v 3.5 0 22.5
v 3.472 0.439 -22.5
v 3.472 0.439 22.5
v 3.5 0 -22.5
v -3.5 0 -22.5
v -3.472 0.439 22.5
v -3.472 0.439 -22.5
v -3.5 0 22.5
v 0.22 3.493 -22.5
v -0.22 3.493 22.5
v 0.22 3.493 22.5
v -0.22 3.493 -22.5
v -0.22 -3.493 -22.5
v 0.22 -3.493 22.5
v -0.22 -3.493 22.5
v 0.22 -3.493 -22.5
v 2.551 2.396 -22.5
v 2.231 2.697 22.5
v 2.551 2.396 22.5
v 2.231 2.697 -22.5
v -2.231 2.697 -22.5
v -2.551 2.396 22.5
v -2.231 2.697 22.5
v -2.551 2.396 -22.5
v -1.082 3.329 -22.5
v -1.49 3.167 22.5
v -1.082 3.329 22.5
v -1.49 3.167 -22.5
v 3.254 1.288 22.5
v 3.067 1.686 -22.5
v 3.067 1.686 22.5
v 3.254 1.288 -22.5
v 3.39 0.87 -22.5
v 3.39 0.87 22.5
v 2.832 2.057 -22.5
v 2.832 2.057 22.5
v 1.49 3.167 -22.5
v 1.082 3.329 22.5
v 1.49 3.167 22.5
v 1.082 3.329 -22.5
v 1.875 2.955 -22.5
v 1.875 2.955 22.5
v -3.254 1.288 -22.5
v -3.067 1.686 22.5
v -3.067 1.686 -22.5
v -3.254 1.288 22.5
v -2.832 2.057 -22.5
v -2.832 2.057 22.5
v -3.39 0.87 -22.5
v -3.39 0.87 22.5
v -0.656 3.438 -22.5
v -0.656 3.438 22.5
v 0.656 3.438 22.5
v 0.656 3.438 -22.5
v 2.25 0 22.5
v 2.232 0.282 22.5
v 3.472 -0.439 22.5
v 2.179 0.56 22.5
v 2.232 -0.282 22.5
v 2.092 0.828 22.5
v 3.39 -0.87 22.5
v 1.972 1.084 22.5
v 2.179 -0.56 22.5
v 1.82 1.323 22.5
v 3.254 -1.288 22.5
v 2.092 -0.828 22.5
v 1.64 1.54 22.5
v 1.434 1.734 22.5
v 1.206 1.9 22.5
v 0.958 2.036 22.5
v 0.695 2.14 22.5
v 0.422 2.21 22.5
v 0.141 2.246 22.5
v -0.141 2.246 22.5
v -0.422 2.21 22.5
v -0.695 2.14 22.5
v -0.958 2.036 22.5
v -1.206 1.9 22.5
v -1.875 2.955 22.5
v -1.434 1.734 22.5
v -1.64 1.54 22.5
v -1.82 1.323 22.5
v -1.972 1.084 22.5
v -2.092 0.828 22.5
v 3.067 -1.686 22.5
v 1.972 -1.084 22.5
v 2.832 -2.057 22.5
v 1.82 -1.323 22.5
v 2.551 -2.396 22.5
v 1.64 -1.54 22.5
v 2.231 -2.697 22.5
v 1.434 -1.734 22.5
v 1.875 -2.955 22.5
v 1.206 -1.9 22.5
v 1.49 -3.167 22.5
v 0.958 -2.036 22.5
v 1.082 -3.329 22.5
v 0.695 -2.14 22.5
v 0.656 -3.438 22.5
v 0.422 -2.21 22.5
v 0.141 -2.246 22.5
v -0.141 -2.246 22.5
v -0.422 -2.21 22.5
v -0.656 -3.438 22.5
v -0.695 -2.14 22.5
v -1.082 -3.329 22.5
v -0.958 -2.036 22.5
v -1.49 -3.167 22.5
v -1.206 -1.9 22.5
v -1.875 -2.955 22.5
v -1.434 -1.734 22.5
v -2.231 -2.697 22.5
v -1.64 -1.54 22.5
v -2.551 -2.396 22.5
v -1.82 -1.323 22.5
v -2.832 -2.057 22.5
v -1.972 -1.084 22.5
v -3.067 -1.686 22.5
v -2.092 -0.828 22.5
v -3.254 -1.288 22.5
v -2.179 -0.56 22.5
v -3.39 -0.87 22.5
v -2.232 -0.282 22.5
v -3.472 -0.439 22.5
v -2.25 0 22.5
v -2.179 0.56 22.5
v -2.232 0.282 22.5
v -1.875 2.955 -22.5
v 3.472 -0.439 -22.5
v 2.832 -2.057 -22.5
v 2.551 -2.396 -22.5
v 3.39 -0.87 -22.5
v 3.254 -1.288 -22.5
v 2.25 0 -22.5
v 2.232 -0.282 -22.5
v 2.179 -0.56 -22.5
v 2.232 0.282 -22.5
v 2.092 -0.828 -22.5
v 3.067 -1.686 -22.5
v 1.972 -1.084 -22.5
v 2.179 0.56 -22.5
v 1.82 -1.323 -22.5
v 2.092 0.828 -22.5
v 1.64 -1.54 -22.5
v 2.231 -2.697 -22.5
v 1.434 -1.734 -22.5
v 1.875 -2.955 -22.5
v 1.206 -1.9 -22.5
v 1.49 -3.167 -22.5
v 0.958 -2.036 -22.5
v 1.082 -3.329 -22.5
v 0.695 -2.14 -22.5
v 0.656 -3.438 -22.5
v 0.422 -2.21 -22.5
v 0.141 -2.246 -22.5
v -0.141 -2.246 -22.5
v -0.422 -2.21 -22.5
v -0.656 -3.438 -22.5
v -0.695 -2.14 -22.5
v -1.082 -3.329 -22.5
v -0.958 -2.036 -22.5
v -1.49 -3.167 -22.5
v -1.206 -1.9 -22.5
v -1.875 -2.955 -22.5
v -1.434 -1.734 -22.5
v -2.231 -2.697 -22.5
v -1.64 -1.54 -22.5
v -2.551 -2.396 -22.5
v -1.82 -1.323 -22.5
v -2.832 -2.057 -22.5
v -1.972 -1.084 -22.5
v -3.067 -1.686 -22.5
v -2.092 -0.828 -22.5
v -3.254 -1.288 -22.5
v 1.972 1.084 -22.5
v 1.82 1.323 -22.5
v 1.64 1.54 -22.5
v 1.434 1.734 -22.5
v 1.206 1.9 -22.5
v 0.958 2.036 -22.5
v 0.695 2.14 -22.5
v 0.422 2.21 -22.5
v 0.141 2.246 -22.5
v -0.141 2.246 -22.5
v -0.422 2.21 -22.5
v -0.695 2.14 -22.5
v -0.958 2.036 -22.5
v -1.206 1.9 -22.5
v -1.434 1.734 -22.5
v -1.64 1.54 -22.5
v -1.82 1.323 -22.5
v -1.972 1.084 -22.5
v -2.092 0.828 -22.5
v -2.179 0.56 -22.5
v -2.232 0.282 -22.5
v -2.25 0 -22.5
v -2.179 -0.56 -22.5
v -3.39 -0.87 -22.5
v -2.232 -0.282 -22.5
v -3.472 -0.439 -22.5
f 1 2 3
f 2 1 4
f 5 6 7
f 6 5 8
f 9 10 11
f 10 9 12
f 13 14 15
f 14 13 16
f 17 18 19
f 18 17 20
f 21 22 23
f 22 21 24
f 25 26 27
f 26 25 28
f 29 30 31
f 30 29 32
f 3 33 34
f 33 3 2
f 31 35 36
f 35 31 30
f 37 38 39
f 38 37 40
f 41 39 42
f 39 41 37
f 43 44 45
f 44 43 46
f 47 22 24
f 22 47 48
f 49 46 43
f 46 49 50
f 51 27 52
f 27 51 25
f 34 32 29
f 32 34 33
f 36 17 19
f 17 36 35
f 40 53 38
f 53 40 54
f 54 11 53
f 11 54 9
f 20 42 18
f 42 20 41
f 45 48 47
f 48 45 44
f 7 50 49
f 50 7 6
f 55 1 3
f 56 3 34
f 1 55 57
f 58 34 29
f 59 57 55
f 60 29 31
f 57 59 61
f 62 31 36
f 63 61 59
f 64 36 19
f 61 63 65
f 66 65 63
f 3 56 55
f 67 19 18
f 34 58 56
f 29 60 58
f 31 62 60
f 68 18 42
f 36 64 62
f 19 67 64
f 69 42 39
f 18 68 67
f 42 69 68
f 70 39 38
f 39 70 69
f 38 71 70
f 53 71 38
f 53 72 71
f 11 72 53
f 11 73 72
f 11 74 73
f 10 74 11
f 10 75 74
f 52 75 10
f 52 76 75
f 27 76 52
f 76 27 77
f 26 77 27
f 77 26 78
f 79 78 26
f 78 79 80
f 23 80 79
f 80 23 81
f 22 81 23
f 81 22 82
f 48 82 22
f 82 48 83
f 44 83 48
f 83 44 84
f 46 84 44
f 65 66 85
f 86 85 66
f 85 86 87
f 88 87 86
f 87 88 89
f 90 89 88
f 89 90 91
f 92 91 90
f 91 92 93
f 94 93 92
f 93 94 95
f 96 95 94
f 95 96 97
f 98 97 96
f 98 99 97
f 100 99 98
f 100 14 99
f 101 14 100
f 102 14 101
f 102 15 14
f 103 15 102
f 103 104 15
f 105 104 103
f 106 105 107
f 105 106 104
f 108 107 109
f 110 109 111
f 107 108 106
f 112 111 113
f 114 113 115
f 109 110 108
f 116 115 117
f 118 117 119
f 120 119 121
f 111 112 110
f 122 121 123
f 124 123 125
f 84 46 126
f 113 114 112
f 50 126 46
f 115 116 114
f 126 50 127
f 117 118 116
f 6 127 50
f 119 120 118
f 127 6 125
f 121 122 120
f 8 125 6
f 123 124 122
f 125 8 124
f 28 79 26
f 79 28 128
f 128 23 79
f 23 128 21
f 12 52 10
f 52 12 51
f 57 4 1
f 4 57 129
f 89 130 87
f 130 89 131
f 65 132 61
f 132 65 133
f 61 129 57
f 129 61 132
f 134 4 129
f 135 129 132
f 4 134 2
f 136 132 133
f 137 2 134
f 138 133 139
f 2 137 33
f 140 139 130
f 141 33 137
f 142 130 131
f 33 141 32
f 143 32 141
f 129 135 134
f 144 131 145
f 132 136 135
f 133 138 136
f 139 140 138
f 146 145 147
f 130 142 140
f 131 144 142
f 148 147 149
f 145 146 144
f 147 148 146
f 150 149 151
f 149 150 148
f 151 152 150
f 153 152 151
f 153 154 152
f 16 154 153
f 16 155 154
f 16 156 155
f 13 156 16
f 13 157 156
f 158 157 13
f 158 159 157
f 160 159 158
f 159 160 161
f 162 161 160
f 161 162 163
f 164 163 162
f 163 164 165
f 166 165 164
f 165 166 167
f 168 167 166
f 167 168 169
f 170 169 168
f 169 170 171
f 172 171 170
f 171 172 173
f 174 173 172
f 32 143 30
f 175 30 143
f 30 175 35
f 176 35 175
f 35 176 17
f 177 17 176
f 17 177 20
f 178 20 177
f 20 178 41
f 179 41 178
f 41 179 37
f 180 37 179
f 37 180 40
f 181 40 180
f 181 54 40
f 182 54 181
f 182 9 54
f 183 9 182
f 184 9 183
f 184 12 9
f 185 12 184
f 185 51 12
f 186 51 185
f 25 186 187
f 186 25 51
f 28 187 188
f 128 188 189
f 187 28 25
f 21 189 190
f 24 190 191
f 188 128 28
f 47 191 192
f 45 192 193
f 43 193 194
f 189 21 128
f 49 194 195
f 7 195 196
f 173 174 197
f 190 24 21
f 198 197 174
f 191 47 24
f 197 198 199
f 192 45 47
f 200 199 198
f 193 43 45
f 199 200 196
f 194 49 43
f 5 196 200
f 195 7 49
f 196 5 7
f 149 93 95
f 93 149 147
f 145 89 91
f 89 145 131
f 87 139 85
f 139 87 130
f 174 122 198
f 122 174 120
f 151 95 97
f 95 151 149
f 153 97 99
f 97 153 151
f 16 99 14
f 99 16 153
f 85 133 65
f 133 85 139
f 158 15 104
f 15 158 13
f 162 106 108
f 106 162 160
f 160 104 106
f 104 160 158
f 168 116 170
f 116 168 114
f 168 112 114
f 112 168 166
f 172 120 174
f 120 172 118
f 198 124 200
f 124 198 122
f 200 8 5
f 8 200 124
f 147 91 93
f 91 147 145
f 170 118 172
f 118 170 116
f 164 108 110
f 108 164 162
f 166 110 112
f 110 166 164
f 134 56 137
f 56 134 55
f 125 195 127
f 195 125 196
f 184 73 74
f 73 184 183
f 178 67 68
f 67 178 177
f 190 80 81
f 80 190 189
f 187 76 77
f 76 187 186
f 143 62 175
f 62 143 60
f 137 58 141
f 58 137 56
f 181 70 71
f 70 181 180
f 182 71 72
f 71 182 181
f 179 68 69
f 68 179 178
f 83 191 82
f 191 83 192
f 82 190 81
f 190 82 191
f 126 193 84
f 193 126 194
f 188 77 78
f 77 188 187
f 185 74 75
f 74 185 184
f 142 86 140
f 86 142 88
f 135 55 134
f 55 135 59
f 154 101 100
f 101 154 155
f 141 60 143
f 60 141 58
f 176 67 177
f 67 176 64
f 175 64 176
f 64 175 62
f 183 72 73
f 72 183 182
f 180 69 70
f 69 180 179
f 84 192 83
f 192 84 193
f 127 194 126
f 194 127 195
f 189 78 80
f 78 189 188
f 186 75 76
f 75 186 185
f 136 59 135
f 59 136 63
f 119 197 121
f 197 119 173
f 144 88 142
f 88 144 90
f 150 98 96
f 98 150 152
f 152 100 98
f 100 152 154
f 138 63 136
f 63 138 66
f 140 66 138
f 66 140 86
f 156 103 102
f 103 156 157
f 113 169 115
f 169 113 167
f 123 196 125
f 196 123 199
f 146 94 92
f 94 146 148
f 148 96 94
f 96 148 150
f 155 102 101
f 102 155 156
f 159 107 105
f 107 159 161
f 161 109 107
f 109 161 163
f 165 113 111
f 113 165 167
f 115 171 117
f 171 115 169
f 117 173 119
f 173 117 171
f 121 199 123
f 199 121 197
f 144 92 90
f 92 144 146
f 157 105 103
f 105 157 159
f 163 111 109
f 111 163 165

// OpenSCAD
$fn = 50;


difference() {
	union() {
		translate(v = [0, 0, -22.5000000000]) {
			cylinder(h = 45, r = 3.5000000000);
		}
	}
	union() {
		translate(v = [0, 0, -100.0000000000]) {
			cylinder(h = 200, r = 2.2500000000);
		}
	}
}
